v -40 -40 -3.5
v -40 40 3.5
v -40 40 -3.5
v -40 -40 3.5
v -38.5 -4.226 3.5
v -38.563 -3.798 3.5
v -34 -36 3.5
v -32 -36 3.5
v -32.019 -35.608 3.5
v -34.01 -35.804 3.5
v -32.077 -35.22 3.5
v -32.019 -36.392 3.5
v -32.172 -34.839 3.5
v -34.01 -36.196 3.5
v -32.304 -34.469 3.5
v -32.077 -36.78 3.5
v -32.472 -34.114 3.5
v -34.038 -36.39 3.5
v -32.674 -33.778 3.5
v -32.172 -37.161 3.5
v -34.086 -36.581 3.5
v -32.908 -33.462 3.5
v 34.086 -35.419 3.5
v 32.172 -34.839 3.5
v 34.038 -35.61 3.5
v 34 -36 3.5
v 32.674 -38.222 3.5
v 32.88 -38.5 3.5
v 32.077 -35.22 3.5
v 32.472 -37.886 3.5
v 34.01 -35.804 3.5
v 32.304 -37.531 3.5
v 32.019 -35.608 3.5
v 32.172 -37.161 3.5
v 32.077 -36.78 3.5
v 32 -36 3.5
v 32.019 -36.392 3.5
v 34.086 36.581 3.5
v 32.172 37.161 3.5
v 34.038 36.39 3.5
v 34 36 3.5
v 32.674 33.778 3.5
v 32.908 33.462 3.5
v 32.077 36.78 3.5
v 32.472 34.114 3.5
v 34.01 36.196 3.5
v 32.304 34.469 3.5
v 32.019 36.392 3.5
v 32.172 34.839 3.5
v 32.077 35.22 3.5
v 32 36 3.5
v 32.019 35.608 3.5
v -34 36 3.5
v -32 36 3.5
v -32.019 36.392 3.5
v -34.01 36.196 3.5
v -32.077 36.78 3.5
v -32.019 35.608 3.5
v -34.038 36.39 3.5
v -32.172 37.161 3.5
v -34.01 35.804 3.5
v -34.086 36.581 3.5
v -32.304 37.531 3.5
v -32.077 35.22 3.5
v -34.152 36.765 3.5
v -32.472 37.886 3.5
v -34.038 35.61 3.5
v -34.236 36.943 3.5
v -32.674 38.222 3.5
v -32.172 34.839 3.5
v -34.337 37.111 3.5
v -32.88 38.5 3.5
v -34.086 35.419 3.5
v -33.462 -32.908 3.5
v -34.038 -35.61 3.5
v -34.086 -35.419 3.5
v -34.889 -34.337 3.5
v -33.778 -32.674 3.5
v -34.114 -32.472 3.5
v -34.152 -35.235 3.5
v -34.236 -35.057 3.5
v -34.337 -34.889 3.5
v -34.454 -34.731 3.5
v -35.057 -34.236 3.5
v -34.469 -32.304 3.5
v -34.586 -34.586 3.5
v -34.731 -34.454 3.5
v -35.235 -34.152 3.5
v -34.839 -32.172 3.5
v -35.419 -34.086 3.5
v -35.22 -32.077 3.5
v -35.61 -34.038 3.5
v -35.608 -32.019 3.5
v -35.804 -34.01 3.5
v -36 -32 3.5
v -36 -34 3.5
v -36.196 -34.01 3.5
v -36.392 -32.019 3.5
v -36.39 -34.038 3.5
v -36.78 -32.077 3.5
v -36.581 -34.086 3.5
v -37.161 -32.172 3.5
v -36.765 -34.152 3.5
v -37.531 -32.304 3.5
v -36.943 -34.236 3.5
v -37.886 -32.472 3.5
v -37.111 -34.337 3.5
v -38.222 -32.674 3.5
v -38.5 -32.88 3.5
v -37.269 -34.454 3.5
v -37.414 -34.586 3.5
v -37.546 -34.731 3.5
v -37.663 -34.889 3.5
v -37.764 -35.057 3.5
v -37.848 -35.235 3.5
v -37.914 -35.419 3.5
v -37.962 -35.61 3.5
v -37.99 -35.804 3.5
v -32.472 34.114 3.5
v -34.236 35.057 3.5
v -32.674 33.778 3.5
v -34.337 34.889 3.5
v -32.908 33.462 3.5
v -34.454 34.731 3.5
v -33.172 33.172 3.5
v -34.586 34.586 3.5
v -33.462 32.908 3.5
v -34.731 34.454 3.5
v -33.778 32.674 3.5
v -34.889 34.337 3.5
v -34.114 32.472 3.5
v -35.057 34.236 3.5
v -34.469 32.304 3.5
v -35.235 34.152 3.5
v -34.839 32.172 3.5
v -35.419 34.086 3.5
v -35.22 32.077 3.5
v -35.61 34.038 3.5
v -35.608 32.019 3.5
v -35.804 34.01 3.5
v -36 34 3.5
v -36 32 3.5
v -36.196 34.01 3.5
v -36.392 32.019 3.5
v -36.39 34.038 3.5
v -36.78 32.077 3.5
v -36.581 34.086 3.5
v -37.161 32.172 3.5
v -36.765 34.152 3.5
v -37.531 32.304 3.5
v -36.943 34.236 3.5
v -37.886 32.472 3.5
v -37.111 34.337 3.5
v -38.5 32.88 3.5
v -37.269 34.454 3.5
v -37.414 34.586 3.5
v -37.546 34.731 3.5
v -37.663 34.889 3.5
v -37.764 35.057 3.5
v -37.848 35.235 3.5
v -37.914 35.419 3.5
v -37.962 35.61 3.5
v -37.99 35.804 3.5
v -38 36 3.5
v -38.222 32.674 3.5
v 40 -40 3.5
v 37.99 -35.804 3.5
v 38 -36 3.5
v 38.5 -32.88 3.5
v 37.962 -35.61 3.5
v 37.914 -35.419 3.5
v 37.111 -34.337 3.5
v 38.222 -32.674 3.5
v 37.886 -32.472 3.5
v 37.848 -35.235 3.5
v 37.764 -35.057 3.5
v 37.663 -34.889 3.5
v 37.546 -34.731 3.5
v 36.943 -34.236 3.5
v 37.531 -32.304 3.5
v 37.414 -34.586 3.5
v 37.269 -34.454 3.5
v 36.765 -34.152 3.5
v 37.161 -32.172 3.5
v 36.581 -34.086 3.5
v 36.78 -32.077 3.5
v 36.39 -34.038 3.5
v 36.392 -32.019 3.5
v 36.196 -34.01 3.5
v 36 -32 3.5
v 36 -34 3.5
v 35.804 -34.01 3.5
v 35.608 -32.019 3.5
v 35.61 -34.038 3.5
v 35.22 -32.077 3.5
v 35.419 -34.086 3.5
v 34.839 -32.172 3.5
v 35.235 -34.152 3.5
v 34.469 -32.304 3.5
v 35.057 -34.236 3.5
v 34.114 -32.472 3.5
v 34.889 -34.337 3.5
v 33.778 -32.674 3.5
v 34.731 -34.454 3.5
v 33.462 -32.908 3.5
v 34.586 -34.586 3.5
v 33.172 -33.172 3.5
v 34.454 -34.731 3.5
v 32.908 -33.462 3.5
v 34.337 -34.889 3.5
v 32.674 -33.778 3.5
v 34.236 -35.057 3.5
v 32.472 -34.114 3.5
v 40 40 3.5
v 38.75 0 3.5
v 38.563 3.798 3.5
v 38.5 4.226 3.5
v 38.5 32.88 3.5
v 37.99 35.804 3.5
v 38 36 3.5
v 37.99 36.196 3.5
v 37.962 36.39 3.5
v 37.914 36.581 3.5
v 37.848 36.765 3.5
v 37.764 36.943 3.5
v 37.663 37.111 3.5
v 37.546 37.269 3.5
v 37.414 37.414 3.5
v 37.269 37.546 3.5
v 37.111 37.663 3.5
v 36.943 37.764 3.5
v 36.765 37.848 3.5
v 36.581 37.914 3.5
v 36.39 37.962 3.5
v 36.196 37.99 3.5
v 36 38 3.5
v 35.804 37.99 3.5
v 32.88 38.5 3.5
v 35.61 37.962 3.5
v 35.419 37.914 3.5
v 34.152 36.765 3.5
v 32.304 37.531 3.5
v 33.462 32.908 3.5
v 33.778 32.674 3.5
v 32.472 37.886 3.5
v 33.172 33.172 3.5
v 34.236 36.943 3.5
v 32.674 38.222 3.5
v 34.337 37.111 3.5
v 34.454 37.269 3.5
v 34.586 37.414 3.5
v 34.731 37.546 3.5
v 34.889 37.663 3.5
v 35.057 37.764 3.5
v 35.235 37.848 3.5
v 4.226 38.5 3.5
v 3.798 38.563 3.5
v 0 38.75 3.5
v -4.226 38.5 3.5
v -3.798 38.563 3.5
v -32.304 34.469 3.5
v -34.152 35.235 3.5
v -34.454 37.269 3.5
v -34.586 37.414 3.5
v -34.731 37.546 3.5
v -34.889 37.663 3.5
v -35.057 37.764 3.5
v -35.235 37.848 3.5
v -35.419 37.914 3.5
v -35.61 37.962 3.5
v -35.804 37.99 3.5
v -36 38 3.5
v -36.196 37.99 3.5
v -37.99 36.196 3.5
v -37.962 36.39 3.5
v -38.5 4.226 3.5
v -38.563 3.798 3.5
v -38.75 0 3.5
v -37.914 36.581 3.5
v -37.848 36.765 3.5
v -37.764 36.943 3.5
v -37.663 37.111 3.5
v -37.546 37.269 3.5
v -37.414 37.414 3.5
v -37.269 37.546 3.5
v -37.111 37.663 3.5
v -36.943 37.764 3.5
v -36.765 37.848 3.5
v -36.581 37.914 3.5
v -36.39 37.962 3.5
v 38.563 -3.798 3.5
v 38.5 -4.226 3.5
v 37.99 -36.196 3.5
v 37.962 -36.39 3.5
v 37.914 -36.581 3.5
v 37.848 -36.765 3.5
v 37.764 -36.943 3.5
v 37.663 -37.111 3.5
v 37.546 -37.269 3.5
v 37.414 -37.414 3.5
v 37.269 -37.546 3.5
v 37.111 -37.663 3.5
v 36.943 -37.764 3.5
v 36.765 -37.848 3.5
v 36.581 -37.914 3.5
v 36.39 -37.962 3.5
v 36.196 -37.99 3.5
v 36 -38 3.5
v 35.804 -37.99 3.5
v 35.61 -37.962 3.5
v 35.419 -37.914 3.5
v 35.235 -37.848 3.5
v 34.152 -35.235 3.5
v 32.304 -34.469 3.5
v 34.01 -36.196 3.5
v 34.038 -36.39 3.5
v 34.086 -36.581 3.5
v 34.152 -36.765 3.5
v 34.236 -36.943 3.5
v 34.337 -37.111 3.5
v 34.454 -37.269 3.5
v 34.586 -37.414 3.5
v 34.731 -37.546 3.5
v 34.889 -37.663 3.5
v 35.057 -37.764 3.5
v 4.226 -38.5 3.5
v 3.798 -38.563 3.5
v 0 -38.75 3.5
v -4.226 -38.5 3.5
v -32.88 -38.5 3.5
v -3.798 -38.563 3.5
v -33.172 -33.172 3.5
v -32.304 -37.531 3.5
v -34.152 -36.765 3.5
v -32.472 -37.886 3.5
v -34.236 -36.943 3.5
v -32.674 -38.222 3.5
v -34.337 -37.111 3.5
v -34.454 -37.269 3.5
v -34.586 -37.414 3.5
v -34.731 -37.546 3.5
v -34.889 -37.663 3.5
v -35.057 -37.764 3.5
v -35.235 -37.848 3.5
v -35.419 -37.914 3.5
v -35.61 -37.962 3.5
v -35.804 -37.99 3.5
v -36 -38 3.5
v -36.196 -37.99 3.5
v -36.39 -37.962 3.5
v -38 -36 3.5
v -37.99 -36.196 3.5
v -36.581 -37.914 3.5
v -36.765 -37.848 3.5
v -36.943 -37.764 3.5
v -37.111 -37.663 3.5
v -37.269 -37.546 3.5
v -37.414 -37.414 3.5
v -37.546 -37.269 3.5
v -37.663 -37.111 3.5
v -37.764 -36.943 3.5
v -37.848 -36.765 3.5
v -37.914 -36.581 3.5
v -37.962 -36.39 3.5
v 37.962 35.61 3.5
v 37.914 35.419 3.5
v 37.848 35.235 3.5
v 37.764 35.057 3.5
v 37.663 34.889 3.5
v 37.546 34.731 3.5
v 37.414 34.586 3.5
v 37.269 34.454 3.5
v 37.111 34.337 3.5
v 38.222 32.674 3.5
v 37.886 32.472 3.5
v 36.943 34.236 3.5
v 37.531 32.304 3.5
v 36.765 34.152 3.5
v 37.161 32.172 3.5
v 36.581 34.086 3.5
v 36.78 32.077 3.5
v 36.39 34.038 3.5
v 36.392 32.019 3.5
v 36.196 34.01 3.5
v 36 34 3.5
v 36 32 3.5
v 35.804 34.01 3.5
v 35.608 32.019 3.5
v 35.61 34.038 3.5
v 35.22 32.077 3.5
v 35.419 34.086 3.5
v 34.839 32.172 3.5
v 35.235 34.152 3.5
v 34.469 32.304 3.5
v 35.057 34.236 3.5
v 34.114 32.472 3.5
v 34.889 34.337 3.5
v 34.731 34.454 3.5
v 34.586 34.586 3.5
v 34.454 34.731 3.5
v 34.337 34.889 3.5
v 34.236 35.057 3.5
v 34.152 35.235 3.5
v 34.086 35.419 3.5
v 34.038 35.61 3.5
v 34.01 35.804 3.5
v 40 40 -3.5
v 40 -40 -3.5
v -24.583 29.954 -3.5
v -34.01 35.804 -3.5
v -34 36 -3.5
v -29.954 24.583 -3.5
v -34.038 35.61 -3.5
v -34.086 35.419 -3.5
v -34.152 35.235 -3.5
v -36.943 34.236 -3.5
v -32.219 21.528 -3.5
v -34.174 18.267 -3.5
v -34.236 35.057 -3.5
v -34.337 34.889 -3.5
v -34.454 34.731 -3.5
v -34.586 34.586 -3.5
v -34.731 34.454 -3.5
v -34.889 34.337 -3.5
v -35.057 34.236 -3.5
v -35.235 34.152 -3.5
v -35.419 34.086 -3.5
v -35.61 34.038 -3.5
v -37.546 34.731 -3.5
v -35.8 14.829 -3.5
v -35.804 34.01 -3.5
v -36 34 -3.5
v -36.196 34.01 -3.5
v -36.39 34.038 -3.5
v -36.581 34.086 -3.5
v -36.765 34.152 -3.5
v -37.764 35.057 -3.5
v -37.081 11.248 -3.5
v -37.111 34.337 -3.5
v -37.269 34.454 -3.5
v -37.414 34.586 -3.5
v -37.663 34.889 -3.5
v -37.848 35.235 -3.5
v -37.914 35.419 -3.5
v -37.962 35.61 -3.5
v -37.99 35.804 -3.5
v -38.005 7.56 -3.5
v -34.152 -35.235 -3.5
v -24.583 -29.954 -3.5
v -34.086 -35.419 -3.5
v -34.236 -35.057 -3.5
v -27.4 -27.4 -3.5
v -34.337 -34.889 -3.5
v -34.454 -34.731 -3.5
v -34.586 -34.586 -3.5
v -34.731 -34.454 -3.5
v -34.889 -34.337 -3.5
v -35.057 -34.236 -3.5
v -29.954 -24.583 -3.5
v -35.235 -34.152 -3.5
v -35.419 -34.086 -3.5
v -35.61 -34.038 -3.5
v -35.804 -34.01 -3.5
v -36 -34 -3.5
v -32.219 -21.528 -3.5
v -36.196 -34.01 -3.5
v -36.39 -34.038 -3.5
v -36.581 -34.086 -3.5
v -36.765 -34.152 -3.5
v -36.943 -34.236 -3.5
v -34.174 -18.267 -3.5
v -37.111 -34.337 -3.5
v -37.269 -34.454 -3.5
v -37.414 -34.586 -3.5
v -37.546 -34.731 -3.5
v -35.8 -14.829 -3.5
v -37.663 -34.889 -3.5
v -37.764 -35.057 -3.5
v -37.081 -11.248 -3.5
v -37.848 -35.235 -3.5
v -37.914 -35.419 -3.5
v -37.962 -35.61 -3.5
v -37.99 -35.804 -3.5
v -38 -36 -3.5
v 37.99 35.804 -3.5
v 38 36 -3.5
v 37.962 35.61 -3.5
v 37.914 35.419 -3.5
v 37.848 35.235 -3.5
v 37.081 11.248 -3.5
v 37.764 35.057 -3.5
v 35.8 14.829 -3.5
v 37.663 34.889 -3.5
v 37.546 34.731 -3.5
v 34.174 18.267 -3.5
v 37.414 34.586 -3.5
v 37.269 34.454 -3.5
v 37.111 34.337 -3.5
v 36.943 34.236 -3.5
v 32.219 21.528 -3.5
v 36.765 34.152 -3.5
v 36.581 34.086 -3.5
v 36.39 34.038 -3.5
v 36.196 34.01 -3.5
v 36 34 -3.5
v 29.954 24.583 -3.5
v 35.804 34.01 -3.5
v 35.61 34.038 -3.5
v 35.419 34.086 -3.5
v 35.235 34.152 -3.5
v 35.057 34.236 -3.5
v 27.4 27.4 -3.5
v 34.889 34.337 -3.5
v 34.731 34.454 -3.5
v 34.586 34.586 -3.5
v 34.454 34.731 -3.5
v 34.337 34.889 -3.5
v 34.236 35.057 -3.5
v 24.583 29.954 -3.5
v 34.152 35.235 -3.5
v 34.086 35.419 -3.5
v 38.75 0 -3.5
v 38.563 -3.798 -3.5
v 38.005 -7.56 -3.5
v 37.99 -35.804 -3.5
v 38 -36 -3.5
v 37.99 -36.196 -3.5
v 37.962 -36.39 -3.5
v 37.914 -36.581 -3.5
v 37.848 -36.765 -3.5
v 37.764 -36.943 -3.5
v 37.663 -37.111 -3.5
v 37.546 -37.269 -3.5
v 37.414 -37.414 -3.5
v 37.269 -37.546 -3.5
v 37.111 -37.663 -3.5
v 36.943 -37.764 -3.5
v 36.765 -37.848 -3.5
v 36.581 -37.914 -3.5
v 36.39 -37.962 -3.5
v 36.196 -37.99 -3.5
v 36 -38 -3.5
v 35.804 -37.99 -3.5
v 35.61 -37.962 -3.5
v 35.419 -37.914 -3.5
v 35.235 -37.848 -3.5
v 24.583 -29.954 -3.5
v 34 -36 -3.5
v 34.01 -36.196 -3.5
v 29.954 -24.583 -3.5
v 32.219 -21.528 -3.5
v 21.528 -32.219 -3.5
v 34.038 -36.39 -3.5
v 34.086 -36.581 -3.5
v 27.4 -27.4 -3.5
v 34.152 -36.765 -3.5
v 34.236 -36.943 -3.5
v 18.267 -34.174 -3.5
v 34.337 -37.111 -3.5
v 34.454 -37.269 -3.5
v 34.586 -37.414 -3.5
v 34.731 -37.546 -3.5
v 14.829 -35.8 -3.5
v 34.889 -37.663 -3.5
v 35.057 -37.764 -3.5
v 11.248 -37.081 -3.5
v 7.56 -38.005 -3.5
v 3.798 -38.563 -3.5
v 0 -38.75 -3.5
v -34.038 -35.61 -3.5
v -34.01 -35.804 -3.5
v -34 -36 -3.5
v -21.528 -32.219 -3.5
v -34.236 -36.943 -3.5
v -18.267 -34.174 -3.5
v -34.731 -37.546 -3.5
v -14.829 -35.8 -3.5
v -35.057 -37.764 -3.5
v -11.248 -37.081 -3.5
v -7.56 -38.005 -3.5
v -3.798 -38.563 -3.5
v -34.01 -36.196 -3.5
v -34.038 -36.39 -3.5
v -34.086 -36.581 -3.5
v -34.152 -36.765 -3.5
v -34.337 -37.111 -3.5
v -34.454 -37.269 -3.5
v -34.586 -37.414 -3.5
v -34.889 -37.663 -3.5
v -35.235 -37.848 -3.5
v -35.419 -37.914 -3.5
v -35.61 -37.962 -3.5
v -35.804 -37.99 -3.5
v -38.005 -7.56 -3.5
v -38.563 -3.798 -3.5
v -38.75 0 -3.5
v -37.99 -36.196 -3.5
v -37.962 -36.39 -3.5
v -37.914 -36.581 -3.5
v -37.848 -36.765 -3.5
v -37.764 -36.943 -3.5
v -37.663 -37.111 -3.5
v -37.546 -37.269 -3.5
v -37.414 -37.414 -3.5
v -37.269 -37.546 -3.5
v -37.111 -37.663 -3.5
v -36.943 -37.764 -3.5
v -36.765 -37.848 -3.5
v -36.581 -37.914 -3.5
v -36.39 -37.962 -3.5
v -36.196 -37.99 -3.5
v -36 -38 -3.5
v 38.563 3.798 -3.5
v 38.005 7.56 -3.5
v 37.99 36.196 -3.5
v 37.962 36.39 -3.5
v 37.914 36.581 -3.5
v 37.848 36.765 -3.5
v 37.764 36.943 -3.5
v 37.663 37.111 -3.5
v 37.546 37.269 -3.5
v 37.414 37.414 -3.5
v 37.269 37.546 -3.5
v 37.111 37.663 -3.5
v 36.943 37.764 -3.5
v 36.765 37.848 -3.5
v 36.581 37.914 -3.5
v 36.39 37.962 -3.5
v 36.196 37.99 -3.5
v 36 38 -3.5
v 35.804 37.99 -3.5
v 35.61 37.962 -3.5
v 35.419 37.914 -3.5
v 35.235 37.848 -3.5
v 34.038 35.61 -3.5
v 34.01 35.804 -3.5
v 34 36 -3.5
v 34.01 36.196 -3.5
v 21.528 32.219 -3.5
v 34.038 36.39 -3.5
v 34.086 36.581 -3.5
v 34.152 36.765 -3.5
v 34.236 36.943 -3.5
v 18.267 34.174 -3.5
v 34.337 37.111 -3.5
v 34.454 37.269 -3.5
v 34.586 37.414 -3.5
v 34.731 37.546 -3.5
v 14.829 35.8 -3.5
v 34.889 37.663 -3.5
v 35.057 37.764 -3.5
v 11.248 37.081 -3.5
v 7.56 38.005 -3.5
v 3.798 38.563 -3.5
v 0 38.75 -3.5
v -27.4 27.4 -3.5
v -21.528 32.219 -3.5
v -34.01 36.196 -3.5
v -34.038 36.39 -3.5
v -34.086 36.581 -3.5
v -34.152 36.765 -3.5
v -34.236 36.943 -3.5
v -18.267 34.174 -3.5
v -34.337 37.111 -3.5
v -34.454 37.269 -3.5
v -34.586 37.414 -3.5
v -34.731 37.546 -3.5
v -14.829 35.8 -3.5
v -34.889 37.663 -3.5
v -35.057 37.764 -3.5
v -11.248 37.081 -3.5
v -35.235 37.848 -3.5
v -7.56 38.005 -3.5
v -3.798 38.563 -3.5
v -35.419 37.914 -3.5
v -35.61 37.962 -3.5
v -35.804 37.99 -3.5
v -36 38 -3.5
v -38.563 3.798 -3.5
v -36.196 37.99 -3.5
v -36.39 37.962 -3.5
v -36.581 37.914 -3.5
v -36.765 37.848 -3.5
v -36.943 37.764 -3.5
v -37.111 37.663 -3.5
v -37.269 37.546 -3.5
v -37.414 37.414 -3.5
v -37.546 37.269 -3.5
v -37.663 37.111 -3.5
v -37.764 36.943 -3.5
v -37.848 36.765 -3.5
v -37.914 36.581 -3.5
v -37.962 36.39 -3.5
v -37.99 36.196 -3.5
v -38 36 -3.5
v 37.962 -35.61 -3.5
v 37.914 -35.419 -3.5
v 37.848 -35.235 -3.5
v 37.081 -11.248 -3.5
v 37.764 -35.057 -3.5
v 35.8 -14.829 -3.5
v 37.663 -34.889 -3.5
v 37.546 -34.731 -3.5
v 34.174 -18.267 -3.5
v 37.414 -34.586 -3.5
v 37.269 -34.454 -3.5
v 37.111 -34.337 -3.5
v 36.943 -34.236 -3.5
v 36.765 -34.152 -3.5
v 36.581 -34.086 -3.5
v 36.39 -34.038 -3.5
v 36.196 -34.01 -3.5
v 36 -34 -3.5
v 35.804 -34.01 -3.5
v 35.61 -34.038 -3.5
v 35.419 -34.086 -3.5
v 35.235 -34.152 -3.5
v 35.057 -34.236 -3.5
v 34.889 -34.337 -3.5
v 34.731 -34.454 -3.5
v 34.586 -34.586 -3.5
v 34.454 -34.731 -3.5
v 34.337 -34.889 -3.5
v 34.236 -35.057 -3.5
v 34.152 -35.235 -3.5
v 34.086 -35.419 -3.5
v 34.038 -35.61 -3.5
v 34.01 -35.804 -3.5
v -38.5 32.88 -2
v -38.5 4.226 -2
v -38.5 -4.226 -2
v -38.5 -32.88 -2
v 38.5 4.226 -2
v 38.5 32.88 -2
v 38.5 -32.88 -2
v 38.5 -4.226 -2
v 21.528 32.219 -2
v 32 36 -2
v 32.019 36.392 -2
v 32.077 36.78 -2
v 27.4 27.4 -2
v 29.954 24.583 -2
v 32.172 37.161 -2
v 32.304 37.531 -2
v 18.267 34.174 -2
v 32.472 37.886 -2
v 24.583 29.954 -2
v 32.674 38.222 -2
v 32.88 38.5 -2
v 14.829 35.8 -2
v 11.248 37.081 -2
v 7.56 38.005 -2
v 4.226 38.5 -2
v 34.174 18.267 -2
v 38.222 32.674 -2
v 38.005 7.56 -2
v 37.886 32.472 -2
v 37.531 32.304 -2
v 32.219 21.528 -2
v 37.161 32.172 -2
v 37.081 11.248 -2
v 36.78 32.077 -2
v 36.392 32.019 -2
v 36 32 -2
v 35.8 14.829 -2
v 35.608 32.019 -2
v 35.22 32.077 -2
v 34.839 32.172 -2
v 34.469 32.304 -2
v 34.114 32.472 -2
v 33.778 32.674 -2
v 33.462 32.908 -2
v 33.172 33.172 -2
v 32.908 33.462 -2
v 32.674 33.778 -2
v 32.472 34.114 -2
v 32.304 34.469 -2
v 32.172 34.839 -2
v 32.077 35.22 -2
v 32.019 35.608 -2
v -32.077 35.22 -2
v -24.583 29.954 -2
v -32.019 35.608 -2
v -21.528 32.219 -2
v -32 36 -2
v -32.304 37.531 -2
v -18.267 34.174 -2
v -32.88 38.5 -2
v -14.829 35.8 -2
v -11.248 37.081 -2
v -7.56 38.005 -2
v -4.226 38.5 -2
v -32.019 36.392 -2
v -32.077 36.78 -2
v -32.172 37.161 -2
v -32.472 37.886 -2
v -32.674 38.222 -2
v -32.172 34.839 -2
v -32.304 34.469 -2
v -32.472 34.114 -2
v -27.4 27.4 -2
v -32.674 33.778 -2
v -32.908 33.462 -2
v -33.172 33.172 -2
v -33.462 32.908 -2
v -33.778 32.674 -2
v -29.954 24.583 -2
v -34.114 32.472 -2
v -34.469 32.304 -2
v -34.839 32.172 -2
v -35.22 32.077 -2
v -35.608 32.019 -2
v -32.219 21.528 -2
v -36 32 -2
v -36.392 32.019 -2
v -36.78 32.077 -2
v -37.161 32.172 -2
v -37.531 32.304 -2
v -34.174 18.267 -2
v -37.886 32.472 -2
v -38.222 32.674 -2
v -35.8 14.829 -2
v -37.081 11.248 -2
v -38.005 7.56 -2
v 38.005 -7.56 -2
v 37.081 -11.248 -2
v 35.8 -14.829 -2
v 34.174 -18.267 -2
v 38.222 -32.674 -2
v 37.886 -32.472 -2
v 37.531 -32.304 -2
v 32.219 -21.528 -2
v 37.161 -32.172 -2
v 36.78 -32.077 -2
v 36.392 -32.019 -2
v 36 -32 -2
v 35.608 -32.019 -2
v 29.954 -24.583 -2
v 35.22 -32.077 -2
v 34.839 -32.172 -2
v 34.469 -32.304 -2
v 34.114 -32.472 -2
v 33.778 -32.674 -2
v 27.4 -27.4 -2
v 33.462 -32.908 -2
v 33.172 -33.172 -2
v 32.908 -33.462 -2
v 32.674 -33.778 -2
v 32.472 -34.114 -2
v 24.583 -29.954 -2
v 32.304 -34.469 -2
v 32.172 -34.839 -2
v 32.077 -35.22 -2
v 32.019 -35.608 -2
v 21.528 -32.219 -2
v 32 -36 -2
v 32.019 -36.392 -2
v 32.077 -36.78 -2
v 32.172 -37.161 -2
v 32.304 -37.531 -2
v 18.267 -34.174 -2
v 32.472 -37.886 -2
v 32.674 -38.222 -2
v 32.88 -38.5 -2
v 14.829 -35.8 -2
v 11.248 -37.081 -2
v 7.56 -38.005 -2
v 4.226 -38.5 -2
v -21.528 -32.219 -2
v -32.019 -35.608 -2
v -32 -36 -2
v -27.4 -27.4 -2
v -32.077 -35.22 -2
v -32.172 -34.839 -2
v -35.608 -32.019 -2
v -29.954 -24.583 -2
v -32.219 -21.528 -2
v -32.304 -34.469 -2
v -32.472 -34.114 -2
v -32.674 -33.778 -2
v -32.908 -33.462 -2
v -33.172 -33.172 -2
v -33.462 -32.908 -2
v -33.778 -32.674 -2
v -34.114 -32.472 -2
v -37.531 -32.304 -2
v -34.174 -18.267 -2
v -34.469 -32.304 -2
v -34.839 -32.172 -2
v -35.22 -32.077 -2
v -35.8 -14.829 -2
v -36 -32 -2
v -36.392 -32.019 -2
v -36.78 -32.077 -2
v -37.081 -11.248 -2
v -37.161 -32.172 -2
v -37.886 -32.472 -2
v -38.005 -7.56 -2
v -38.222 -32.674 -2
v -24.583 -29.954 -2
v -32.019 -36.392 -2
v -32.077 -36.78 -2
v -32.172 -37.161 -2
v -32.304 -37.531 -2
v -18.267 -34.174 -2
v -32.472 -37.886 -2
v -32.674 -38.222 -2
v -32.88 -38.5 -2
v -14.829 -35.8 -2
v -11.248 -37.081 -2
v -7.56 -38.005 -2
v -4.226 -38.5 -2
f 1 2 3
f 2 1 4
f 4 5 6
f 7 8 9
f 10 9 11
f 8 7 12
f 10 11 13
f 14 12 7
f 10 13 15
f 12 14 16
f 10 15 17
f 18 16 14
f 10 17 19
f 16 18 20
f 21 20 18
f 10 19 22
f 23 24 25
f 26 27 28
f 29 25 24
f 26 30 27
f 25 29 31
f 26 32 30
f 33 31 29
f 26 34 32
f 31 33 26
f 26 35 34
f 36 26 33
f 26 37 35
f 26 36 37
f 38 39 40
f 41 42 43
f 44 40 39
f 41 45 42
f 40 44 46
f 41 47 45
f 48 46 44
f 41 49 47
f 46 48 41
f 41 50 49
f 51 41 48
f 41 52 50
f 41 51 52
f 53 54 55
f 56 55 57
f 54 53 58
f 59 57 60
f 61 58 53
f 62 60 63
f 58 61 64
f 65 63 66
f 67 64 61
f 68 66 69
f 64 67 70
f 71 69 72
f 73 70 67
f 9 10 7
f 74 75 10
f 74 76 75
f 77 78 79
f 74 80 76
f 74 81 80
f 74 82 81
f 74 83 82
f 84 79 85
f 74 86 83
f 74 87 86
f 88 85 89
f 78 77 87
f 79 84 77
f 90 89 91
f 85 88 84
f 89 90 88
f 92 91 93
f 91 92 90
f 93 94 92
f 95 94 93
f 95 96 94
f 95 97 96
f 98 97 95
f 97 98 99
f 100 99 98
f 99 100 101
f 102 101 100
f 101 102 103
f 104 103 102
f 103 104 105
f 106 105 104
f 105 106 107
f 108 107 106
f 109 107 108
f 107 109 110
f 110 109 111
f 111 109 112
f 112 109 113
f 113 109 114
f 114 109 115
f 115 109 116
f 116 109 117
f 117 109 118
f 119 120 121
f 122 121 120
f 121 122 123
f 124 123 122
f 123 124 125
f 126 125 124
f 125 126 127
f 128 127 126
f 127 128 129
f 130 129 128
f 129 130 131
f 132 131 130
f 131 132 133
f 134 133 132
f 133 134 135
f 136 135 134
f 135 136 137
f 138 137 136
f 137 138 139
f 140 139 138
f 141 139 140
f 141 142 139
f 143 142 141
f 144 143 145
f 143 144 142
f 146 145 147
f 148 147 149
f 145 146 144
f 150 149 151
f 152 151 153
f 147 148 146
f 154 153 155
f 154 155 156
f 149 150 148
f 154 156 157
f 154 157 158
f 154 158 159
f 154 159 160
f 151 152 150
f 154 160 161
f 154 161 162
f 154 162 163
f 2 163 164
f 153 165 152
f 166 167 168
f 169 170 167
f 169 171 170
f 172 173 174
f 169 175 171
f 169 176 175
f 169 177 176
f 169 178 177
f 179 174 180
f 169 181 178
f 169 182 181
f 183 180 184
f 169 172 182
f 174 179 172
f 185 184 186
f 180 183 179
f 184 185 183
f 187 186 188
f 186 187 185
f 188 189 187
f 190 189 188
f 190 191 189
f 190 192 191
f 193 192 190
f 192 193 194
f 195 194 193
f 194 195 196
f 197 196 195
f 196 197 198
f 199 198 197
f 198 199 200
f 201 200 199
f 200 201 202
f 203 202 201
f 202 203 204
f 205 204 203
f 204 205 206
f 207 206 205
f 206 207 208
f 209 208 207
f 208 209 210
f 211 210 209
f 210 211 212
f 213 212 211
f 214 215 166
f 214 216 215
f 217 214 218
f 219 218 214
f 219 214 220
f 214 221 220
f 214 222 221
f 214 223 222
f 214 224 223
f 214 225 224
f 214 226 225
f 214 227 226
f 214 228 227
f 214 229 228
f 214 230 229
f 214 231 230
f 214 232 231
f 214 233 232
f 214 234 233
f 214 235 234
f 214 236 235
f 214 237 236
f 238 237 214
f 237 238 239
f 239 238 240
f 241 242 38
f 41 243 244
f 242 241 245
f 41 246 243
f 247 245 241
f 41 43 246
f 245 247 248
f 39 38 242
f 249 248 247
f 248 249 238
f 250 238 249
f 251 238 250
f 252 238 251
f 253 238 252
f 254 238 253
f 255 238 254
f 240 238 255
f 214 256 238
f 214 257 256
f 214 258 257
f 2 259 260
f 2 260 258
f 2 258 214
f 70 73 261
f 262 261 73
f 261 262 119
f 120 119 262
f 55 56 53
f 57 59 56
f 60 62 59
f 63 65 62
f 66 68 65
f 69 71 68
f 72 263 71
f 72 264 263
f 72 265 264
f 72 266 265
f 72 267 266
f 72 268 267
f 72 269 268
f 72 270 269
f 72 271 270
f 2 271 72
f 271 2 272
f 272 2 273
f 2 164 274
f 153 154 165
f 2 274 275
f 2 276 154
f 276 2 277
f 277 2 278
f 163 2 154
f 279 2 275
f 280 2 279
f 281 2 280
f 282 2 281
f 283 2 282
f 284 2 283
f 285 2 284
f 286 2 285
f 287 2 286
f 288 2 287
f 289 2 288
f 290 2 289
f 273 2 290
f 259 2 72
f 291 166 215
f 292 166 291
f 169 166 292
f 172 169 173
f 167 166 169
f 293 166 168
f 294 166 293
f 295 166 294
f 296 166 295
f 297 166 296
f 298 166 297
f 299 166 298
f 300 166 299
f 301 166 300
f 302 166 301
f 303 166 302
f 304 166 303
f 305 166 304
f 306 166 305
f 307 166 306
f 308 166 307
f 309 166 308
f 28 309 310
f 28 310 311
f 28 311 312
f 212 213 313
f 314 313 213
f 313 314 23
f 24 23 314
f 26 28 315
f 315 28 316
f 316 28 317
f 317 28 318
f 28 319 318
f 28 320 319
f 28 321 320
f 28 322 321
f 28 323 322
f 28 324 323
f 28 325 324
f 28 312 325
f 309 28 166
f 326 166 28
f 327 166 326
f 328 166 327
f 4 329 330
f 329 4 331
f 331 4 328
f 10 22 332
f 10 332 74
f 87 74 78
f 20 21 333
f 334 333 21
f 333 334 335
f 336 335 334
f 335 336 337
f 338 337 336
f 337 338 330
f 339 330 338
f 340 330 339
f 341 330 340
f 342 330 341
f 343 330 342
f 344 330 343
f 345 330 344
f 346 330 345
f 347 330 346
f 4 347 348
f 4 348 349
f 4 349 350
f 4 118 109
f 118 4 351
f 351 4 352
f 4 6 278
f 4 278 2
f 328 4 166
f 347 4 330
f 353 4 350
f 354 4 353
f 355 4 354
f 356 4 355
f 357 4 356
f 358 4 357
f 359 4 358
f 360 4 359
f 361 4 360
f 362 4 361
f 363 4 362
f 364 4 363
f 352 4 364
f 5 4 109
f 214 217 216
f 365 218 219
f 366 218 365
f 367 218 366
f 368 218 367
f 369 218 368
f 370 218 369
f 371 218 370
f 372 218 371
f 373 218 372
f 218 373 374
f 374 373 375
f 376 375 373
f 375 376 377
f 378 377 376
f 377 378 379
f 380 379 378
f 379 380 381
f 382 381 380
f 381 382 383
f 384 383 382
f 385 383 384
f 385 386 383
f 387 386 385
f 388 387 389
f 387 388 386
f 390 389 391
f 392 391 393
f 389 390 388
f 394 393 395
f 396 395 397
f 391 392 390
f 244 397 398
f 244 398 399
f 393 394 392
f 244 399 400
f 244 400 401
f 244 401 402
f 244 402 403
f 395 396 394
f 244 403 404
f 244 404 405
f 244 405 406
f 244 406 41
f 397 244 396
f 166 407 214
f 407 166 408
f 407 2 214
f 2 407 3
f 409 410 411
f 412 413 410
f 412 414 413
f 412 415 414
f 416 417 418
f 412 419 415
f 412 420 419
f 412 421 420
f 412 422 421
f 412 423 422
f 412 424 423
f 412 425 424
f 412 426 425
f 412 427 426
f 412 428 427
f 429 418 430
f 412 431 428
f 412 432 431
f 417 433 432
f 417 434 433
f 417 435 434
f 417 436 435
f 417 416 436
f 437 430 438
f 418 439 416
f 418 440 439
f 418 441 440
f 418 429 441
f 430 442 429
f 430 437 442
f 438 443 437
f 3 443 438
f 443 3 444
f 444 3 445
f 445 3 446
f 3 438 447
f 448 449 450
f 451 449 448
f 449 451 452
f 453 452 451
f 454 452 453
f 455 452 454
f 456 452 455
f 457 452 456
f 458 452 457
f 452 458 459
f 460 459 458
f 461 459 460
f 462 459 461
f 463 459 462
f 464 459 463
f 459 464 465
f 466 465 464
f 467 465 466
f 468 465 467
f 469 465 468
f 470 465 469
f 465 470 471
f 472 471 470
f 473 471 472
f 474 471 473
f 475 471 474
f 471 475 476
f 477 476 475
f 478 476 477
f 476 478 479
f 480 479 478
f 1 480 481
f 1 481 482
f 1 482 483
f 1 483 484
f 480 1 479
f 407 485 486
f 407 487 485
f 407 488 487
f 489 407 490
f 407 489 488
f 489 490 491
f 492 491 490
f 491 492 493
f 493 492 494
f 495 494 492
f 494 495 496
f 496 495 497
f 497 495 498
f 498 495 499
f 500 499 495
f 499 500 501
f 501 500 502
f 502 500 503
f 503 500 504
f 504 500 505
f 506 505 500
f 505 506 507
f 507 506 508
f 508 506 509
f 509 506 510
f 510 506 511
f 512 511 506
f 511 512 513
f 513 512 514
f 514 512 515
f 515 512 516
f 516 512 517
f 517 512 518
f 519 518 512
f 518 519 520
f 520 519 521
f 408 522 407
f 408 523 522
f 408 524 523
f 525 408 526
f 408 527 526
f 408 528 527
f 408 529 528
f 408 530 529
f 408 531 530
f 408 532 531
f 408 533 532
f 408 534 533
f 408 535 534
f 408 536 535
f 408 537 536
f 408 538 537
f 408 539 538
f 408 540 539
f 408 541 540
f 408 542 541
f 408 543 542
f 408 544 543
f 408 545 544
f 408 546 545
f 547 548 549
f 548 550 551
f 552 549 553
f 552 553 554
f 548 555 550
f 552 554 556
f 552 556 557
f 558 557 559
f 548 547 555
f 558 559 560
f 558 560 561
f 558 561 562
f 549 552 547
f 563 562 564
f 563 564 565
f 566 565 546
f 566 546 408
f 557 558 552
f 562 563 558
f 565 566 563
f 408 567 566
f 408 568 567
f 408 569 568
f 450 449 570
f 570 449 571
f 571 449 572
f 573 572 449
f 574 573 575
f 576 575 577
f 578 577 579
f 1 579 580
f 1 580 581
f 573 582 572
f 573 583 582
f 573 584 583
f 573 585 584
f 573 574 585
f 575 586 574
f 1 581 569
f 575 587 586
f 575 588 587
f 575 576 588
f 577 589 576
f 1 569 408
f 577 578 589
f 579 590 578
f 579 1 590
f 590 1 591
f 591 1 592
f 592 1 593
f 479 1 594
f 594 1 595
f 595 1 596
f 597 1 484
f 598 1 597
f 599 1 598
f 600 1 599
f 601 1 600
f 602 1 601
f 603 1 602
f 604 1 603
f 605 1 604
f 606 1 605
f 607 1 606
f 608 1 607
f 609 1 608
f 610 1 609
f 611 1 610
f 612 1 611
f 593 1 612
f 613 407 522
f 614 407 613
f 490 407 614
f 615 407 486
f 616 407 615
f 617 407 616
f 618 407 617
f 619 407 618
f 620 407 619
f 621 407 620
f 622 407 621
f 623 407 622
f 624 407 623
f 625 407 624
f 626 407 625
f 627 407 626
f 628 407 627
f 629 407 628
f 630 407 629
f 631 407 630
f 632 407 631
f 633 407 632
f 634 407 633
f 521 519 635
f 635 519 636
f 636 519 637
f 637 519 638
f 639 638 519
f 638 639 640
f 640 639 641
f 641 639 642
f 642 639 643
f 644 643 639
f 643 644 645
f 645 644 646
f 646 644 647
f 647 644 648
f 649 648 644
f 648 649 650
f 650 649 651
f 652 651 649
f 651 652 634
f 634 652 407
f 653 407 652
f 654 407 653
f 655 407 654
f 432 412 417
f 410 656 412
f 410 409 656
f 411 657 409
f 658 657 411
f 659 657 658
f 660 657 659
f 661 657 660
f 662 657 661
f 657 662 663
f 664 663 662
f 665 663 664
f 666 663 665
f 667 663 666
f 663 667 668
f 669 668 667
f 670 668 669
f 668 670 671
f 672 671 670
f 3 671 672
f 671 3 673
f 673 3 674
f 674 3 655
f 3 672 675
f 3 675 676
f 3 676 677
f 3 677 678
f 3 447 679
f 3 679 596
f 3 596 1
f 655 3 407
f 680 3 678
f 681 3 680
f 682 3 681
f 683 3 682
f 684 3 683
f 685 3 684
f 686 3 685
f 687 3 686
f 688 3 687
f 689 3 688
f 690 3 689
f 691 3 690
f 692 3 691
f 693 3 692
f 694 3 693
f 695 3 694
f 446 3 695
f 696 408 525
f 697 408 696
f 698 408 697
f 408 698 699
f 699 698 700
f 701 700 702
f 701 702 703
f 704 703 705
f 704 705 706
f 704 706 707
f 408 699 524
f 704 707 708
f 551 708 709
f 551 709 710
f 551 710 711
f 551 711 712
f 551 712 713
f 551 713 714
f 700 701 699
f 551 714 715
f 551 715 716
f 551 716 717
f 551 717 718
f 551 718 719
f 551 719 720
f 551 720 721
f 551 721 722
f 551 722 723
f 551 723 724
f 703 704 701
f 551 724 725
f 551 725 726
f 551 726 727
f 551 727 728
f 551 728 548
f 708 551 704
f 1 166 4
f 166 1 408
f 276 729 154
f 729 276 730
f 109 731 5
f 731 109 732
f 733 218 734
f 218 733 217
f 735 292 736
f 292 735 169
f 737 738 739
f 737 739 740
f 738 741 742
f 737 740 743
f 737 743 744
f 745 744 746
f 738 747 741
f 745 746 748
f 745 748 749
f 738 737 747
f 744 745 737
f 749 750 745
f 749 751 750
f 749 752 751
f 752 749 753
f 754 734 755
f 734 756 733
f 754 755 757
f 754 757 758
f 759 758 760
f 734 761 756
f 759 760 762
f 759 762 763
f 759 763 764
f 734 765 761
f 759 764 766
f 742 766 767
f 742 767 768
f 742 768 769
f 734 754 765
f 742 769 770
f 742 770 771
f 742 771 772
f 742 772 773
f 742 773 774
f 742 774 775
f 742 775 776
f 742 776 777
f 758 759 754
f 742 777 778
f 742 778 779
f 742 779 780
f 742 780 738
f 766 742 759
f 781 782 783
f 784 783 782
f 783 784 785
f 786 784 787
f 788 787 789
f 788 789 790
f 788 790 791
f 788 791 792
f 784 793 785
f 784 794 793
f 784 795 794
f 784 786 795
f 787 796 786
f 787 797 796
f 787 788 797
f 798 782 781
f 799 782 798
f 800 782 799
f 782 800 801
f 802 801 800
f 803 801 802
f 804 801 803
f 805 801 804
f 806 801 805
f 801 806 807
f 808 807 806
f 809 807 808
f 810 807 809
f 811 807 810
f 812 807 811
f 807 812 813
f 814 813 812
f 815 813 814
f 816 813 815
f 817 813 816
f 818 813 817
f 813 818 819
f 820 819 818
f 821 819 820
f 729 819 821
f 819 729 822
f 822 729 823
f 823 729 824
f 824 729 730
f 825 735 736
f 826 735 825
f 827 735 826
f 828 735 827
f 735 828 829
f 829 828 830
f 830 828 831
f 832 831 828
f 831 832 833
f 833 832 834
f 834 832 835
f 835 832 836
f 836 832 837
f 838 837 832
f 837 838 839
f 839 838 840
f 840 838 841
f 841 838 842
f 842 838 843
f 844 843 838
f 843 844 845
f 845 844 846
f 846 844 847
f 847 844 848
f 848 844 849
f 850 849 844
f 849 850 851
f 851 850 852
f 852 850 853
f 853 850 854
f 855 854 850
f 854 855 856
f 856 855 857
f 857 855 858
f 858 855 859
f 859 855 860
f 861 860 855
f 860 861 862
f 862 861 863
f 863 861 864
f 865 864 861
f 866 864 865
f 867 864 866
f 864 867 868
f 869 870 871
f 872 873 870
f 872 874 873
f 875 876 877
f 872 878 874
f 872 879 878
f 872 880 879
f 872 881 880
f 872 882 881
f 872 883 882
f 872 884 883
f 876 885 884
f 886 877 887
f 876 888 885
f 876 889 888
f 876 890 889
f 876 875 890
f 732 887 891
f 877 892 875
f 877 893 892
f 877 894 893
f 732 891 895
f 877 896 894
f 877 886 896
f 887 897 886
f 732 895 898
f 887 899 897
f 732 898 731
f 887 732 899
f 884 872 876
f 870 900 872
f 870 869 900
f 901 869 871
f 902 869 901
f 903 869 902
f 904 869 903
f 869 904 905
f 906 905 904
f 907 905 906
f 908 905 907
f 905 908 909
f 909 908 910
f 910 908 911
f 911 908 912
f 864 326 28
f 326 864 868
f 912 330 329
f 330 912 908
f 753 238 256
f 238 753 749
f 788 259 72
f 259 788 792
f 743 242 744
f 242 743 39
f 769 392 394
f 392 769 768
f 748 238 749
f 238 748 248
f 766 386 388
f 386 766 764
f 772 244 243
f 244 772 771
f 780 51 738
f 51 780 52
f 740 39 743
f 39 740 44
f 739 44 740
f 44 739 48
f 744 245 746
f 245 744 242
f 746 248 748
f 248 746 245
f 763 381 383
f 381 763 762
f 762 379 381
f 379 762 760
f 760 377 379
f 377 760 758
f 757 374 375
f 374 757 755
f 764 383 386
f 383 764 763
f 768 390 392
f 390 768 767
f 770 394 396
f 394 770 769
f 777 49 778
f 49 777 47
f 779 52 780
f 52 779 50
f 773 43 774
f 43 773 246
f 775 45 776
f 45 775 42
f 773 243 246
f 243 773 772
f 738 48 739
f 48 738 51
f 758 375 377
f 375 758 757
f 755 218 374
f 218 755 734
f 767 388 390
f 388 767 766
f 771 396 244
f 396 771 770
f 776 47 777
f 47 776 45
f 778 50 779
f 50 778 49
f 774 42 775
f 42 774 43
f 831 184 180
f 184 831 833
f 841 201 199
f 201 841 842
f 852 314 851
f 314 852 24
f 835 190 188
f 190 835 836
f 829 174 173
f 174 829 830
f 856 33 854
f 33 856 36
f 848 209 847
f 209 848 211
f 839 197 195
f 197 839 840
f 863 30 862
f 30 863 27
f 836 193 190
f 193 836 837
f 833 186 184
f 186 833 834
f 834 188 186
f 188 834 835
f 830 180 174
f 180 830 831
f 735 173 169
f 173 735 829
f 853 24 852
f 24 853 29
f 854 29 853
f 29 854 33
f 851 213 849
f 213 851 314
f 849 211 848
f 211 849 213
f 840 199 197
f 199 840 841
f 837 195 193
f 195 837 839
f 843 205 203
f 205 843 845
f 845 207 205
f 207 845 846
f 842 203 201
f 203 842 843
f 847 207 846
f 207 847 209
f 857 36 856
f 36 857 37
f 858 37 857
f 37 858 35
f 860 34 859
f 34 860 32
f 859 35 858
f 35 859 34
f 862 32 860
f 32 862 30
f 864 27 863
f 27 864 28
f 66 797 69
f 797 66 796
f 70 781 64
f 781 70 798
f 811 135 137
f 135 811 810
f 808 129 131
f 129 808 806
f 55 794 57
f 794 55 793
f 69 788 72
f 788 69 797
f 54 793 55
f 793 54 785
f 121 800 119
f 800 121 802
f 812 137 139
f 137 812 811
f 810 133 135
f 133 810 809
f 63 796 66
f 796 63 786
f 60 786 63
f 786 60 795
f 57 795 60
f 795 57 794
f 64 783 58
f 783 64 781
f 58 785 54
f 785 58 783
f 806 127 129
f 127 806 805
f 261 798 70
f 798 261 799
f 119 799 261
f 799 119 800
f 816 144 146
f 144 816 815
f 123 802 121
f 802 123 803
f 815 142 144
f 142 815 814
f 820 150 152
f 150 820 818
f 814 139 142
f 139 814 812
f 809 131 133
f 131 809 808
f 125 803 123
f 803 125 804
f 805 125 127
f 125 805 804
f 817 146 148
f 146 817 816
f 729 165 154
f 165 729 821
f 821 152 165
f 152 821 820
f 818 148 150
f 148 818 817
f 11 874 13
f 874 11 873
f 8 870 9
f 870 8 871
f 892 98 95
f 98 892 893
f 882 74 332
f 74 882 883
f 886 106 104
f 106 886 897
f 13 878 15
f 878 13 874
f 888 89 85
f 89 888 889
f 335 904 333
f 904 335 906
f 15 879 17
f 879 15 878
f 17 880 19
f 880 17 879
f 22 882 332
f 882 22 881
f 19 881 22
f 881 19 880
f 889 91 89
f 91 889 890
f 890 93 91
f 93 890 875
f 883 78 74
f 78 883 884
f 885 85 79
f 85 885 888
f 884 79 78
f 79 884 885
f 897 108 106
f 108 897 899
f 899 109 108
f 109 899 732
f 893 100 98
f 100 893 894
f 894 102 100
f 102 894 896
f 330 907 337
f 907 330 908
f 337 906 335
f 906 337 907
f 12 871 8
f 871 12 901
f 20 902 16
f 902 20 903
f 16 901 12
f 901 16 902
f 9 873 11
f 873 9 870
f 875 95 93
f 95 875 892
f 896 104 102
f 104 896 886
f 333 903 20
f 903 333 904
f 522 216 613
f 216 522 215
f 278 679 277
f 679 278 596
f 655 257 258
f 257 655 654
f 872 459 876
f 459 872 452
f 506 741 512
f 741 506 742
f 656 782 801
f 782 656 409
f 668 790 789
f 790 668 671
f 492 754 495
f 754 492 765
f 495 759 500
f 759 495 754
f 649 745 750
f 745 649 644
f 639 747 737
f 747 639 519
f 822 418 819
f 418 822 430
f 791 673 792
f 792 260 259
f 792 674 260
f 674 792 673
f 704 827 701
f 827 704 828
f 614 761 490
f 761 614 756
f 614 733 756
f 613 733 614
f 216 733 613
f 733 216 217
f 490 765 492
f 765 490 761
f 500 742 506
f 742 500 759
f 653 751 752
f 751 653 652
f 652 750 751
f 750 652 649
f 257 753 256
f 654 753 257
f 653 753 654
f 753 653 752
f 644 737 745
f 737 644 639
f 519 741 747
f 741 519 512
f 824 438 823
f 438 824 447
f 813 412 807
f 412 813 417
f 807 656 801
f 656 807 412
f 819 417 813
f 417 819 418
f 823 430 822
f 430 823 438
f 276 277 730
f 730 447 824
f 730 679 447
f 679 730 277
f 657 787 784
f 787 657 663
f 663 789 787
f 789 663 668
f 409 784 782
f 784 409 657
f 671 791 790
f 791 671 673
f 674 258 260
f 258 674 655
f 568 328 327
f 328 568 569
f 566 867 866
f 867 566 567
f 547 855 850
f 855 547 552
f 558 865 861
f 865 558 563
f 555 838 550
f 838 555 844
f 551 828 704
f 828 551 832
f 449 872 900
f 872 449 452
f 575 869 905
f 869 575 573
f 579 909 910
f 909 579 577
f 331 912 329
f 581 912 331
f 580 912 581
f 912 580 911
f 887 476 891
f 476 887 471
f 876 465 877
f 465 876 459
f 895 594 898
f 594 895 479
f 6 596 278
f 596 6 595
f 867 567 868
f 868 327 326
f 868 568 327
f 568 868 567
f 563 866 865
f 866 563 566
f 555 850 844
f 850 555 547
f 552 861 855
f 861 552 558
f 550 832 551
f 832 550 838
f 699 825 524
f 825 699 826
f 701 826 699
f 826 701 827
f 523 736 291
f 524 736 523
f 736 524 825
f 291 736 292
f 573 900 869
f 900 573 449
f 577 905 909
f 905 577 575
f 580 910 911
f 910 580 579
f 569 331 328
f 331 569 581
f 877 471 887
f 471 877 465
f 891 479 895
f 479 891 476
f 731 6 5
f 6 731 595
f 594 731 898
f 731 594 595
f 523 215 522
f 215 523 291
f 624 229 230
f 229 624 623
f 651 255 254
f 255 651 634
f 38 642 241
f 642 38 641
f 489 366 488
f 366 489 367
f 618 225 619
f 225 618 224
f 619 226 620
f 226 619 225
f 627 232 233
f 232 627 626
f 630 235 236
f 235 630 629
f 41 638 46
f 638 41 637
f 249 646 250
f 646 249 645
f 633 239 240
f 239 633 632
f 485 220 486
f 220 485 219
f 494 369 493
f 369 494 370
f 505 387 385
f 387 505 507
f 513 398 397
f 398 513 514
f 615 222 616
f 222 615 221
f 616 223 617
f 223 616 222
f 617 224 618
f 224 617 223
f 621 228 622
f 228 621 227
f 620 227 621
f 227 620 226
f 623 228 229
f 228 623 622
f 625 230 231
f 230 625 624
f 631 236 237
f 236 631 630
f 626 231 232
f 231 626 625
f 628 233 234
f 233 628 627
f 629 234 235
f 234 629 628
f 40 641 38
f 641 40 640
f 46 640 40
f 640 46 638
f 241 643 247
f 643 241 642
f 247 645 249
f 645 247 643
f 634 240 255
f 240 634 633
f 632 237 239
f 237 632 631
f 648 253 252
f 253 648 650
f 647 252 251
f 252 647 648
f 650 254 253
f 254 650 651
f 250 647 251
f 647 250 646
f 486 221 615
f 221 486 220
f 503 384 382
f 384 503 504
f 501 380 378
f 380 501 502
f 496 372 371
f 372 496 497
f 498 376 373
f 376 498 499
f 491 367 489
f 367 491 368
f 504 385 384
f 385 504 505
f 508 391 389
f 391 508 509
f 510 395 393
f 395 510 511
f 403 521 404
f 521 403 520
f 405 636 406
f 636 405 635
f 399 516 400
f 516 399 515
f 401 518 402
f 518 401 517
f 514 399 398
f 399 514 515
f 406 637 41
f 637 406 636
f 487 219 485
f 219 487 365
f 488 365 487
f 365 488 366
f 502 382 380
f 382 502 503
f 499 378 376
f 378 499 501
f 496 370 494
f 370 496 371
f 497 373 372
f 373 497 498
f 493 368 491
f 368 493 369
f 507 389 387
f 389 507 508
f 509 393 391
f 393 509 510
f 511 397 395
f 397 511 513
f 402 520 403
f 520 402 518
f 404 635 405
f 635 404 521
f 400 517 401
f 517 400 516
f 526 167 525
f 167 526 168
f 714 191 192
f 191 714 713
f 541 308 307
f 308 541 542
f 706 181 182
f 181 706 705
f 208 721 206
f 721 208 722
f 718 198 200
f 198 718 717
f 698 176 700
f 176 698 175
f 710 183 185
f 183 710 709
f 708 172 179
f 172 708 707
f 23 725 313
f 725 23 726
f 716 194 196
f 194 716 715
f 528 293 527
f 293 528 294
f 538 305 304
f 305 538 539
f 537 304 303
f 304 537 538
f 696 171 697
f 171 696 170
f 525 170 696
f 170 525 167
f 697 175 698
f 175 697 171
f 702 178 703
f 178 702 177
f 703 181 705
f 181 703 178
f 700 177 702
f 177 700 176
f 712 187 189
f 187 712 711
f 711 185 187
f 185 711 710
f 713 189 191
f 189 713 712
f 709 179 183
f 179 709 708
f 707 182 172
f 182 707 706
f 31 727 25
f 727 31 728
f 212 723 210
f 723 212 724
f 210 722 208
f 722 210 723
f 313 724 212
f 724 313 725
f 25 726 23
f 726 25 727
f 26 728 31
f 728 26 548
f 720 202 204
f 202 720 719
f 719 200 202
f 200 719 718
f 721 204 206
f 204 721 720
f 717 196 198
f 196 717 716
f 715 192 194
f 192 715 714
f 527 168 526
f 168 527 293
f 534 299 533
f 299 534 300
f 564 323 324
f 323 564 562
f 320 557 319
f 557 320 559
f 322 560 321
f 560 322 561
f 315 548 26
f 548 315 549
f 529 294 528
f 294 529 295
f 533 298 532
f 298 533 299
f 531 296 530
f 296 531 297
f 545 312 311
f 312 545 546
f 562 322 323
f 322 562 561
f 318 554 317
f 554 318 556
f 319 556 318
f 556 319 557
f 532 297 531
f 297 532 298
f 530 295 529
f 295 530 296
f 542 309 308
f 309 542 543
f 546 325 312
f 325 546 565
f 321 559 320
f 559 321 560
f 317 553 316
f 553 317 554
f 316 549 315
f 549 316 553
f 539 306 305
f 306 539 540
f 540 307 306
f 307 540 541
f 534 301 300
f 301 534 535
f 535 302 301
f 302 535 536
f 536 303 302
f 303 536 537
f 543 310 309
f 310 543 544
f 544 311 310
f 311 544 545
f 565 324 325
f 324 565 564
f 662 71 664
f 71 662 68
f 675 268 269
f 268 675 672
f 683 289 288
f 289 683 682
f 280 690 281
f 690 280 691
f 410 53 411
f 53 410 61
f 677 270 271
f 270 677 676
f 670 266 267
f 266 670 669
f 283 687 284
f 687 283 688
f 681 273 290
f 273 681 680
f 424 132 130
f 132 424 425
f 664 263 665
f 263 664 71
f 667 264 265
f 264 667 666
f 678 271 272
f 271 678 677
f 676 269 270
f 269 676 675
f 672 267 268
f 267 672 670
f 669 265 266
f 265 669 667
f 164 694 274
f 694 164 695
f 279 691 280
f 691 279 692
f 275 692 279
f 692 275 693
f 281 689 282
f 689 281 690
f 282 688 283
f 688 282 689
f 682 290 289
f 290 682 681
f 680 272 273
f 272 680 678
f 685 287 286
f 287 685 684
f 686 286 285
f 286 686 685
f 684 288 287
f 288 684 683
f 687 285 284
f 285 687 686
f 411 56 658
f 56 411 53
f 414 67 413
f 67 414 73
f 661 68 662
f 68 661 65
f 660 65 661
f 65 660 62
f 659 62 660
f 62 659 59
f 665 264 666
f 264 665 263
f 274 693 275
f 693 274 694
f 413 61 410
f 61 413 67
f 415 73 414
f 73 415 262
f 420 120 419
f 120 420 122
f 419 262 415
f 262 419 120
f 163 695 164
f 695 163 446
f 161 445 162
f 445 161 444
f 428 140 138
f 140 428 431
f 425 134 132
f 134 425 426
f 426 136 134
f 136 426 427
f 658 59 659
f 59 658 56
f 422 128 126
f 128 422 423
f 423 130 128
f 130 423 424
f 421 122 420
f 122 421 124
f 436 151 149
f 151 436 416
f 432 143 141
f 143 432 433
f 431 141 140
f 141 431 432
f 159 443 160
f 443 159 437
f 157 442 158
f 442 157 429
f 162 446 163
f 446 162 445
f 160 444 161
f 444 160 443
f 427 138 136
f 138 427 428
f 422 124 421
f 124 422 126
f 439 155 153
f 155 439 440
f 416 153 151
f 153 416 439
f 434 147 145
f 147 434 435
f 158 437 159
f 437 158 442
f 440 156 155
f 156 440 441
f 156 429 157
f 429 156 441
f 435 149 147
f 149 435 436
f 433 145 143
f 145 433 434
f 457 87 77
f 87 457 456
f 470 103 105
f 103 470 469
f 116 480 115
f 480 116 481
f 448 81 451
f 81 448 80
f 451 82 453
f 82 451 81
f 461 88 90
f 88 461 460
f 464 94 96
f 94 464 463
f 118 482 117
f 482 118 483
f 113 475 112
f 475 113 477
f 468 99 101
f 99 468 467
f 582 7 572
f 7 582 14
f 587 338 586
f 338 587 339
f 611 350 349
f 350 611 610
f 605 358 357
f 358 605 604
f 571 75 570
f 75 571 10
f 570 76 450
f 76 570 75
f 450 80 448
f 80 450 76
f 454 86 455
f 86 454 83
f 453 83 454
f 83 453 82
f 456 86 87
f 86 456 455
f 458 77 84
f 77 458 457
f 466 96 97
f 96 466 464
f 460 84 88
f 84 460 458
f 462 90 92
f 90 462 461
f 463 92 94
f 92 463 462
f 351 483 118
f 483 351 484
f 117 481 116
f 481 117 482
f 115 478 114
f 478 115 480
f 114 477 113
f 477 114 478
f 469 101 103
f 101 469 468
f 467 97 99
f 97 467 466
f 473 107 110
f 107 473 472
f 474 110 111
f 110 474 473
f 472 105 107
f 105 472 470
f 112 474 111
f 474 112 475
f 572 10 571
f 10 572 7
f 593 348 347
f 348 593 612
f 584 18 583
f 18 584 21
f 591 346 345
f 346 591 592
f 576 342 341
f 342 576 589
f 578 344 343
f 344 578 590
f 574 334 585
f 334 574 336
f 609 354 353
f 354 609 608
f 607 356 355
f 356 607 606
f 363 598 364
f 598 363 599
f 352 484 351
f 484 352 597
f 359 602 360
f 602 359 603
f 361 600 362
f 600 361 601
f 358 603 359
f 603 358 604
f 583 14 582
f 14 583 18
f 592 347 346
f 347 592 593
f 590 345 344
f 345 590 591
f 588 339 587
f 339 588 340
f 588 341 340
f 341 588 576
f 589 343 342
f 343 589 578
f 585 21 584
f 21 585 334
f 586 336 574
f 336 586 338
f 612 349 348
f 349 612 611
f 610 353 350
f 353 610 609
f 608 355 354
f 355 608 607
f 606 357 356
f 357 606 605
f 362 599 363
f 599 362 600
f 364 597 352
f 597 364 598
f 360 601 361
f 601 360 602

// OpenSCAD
$fn=64;
difference(){
union(){
    difference(){
        cube([80,80,7],center=true);
        translate([0,0,1.5])cube([80-3,80-3,7],center=true);
    }
translate([36,36,0])cylinder(r=4,h=7,center=true);
translate([36,-36,0])cylinder(r=4,h=7,center=true);
translate([-36,36,0])cylinder(r=4,h=7,center=true);
translate([-36,-36,0])cylinder(r=4,h=7,center=true);
}



cylinder(r=77.5/2,h=50,center=true);
translate([36,36,0])cylinder(r=4/2,h=50,center=true);
translate([36,-36,0])cylinder(r=4/2,h=50,center=true);
translate([-36,36,0])cylinder(r=4/2,h=50,center=true);
translate([-36,-36,0])cylinder(r=4/2,h=50,center=true);
}
